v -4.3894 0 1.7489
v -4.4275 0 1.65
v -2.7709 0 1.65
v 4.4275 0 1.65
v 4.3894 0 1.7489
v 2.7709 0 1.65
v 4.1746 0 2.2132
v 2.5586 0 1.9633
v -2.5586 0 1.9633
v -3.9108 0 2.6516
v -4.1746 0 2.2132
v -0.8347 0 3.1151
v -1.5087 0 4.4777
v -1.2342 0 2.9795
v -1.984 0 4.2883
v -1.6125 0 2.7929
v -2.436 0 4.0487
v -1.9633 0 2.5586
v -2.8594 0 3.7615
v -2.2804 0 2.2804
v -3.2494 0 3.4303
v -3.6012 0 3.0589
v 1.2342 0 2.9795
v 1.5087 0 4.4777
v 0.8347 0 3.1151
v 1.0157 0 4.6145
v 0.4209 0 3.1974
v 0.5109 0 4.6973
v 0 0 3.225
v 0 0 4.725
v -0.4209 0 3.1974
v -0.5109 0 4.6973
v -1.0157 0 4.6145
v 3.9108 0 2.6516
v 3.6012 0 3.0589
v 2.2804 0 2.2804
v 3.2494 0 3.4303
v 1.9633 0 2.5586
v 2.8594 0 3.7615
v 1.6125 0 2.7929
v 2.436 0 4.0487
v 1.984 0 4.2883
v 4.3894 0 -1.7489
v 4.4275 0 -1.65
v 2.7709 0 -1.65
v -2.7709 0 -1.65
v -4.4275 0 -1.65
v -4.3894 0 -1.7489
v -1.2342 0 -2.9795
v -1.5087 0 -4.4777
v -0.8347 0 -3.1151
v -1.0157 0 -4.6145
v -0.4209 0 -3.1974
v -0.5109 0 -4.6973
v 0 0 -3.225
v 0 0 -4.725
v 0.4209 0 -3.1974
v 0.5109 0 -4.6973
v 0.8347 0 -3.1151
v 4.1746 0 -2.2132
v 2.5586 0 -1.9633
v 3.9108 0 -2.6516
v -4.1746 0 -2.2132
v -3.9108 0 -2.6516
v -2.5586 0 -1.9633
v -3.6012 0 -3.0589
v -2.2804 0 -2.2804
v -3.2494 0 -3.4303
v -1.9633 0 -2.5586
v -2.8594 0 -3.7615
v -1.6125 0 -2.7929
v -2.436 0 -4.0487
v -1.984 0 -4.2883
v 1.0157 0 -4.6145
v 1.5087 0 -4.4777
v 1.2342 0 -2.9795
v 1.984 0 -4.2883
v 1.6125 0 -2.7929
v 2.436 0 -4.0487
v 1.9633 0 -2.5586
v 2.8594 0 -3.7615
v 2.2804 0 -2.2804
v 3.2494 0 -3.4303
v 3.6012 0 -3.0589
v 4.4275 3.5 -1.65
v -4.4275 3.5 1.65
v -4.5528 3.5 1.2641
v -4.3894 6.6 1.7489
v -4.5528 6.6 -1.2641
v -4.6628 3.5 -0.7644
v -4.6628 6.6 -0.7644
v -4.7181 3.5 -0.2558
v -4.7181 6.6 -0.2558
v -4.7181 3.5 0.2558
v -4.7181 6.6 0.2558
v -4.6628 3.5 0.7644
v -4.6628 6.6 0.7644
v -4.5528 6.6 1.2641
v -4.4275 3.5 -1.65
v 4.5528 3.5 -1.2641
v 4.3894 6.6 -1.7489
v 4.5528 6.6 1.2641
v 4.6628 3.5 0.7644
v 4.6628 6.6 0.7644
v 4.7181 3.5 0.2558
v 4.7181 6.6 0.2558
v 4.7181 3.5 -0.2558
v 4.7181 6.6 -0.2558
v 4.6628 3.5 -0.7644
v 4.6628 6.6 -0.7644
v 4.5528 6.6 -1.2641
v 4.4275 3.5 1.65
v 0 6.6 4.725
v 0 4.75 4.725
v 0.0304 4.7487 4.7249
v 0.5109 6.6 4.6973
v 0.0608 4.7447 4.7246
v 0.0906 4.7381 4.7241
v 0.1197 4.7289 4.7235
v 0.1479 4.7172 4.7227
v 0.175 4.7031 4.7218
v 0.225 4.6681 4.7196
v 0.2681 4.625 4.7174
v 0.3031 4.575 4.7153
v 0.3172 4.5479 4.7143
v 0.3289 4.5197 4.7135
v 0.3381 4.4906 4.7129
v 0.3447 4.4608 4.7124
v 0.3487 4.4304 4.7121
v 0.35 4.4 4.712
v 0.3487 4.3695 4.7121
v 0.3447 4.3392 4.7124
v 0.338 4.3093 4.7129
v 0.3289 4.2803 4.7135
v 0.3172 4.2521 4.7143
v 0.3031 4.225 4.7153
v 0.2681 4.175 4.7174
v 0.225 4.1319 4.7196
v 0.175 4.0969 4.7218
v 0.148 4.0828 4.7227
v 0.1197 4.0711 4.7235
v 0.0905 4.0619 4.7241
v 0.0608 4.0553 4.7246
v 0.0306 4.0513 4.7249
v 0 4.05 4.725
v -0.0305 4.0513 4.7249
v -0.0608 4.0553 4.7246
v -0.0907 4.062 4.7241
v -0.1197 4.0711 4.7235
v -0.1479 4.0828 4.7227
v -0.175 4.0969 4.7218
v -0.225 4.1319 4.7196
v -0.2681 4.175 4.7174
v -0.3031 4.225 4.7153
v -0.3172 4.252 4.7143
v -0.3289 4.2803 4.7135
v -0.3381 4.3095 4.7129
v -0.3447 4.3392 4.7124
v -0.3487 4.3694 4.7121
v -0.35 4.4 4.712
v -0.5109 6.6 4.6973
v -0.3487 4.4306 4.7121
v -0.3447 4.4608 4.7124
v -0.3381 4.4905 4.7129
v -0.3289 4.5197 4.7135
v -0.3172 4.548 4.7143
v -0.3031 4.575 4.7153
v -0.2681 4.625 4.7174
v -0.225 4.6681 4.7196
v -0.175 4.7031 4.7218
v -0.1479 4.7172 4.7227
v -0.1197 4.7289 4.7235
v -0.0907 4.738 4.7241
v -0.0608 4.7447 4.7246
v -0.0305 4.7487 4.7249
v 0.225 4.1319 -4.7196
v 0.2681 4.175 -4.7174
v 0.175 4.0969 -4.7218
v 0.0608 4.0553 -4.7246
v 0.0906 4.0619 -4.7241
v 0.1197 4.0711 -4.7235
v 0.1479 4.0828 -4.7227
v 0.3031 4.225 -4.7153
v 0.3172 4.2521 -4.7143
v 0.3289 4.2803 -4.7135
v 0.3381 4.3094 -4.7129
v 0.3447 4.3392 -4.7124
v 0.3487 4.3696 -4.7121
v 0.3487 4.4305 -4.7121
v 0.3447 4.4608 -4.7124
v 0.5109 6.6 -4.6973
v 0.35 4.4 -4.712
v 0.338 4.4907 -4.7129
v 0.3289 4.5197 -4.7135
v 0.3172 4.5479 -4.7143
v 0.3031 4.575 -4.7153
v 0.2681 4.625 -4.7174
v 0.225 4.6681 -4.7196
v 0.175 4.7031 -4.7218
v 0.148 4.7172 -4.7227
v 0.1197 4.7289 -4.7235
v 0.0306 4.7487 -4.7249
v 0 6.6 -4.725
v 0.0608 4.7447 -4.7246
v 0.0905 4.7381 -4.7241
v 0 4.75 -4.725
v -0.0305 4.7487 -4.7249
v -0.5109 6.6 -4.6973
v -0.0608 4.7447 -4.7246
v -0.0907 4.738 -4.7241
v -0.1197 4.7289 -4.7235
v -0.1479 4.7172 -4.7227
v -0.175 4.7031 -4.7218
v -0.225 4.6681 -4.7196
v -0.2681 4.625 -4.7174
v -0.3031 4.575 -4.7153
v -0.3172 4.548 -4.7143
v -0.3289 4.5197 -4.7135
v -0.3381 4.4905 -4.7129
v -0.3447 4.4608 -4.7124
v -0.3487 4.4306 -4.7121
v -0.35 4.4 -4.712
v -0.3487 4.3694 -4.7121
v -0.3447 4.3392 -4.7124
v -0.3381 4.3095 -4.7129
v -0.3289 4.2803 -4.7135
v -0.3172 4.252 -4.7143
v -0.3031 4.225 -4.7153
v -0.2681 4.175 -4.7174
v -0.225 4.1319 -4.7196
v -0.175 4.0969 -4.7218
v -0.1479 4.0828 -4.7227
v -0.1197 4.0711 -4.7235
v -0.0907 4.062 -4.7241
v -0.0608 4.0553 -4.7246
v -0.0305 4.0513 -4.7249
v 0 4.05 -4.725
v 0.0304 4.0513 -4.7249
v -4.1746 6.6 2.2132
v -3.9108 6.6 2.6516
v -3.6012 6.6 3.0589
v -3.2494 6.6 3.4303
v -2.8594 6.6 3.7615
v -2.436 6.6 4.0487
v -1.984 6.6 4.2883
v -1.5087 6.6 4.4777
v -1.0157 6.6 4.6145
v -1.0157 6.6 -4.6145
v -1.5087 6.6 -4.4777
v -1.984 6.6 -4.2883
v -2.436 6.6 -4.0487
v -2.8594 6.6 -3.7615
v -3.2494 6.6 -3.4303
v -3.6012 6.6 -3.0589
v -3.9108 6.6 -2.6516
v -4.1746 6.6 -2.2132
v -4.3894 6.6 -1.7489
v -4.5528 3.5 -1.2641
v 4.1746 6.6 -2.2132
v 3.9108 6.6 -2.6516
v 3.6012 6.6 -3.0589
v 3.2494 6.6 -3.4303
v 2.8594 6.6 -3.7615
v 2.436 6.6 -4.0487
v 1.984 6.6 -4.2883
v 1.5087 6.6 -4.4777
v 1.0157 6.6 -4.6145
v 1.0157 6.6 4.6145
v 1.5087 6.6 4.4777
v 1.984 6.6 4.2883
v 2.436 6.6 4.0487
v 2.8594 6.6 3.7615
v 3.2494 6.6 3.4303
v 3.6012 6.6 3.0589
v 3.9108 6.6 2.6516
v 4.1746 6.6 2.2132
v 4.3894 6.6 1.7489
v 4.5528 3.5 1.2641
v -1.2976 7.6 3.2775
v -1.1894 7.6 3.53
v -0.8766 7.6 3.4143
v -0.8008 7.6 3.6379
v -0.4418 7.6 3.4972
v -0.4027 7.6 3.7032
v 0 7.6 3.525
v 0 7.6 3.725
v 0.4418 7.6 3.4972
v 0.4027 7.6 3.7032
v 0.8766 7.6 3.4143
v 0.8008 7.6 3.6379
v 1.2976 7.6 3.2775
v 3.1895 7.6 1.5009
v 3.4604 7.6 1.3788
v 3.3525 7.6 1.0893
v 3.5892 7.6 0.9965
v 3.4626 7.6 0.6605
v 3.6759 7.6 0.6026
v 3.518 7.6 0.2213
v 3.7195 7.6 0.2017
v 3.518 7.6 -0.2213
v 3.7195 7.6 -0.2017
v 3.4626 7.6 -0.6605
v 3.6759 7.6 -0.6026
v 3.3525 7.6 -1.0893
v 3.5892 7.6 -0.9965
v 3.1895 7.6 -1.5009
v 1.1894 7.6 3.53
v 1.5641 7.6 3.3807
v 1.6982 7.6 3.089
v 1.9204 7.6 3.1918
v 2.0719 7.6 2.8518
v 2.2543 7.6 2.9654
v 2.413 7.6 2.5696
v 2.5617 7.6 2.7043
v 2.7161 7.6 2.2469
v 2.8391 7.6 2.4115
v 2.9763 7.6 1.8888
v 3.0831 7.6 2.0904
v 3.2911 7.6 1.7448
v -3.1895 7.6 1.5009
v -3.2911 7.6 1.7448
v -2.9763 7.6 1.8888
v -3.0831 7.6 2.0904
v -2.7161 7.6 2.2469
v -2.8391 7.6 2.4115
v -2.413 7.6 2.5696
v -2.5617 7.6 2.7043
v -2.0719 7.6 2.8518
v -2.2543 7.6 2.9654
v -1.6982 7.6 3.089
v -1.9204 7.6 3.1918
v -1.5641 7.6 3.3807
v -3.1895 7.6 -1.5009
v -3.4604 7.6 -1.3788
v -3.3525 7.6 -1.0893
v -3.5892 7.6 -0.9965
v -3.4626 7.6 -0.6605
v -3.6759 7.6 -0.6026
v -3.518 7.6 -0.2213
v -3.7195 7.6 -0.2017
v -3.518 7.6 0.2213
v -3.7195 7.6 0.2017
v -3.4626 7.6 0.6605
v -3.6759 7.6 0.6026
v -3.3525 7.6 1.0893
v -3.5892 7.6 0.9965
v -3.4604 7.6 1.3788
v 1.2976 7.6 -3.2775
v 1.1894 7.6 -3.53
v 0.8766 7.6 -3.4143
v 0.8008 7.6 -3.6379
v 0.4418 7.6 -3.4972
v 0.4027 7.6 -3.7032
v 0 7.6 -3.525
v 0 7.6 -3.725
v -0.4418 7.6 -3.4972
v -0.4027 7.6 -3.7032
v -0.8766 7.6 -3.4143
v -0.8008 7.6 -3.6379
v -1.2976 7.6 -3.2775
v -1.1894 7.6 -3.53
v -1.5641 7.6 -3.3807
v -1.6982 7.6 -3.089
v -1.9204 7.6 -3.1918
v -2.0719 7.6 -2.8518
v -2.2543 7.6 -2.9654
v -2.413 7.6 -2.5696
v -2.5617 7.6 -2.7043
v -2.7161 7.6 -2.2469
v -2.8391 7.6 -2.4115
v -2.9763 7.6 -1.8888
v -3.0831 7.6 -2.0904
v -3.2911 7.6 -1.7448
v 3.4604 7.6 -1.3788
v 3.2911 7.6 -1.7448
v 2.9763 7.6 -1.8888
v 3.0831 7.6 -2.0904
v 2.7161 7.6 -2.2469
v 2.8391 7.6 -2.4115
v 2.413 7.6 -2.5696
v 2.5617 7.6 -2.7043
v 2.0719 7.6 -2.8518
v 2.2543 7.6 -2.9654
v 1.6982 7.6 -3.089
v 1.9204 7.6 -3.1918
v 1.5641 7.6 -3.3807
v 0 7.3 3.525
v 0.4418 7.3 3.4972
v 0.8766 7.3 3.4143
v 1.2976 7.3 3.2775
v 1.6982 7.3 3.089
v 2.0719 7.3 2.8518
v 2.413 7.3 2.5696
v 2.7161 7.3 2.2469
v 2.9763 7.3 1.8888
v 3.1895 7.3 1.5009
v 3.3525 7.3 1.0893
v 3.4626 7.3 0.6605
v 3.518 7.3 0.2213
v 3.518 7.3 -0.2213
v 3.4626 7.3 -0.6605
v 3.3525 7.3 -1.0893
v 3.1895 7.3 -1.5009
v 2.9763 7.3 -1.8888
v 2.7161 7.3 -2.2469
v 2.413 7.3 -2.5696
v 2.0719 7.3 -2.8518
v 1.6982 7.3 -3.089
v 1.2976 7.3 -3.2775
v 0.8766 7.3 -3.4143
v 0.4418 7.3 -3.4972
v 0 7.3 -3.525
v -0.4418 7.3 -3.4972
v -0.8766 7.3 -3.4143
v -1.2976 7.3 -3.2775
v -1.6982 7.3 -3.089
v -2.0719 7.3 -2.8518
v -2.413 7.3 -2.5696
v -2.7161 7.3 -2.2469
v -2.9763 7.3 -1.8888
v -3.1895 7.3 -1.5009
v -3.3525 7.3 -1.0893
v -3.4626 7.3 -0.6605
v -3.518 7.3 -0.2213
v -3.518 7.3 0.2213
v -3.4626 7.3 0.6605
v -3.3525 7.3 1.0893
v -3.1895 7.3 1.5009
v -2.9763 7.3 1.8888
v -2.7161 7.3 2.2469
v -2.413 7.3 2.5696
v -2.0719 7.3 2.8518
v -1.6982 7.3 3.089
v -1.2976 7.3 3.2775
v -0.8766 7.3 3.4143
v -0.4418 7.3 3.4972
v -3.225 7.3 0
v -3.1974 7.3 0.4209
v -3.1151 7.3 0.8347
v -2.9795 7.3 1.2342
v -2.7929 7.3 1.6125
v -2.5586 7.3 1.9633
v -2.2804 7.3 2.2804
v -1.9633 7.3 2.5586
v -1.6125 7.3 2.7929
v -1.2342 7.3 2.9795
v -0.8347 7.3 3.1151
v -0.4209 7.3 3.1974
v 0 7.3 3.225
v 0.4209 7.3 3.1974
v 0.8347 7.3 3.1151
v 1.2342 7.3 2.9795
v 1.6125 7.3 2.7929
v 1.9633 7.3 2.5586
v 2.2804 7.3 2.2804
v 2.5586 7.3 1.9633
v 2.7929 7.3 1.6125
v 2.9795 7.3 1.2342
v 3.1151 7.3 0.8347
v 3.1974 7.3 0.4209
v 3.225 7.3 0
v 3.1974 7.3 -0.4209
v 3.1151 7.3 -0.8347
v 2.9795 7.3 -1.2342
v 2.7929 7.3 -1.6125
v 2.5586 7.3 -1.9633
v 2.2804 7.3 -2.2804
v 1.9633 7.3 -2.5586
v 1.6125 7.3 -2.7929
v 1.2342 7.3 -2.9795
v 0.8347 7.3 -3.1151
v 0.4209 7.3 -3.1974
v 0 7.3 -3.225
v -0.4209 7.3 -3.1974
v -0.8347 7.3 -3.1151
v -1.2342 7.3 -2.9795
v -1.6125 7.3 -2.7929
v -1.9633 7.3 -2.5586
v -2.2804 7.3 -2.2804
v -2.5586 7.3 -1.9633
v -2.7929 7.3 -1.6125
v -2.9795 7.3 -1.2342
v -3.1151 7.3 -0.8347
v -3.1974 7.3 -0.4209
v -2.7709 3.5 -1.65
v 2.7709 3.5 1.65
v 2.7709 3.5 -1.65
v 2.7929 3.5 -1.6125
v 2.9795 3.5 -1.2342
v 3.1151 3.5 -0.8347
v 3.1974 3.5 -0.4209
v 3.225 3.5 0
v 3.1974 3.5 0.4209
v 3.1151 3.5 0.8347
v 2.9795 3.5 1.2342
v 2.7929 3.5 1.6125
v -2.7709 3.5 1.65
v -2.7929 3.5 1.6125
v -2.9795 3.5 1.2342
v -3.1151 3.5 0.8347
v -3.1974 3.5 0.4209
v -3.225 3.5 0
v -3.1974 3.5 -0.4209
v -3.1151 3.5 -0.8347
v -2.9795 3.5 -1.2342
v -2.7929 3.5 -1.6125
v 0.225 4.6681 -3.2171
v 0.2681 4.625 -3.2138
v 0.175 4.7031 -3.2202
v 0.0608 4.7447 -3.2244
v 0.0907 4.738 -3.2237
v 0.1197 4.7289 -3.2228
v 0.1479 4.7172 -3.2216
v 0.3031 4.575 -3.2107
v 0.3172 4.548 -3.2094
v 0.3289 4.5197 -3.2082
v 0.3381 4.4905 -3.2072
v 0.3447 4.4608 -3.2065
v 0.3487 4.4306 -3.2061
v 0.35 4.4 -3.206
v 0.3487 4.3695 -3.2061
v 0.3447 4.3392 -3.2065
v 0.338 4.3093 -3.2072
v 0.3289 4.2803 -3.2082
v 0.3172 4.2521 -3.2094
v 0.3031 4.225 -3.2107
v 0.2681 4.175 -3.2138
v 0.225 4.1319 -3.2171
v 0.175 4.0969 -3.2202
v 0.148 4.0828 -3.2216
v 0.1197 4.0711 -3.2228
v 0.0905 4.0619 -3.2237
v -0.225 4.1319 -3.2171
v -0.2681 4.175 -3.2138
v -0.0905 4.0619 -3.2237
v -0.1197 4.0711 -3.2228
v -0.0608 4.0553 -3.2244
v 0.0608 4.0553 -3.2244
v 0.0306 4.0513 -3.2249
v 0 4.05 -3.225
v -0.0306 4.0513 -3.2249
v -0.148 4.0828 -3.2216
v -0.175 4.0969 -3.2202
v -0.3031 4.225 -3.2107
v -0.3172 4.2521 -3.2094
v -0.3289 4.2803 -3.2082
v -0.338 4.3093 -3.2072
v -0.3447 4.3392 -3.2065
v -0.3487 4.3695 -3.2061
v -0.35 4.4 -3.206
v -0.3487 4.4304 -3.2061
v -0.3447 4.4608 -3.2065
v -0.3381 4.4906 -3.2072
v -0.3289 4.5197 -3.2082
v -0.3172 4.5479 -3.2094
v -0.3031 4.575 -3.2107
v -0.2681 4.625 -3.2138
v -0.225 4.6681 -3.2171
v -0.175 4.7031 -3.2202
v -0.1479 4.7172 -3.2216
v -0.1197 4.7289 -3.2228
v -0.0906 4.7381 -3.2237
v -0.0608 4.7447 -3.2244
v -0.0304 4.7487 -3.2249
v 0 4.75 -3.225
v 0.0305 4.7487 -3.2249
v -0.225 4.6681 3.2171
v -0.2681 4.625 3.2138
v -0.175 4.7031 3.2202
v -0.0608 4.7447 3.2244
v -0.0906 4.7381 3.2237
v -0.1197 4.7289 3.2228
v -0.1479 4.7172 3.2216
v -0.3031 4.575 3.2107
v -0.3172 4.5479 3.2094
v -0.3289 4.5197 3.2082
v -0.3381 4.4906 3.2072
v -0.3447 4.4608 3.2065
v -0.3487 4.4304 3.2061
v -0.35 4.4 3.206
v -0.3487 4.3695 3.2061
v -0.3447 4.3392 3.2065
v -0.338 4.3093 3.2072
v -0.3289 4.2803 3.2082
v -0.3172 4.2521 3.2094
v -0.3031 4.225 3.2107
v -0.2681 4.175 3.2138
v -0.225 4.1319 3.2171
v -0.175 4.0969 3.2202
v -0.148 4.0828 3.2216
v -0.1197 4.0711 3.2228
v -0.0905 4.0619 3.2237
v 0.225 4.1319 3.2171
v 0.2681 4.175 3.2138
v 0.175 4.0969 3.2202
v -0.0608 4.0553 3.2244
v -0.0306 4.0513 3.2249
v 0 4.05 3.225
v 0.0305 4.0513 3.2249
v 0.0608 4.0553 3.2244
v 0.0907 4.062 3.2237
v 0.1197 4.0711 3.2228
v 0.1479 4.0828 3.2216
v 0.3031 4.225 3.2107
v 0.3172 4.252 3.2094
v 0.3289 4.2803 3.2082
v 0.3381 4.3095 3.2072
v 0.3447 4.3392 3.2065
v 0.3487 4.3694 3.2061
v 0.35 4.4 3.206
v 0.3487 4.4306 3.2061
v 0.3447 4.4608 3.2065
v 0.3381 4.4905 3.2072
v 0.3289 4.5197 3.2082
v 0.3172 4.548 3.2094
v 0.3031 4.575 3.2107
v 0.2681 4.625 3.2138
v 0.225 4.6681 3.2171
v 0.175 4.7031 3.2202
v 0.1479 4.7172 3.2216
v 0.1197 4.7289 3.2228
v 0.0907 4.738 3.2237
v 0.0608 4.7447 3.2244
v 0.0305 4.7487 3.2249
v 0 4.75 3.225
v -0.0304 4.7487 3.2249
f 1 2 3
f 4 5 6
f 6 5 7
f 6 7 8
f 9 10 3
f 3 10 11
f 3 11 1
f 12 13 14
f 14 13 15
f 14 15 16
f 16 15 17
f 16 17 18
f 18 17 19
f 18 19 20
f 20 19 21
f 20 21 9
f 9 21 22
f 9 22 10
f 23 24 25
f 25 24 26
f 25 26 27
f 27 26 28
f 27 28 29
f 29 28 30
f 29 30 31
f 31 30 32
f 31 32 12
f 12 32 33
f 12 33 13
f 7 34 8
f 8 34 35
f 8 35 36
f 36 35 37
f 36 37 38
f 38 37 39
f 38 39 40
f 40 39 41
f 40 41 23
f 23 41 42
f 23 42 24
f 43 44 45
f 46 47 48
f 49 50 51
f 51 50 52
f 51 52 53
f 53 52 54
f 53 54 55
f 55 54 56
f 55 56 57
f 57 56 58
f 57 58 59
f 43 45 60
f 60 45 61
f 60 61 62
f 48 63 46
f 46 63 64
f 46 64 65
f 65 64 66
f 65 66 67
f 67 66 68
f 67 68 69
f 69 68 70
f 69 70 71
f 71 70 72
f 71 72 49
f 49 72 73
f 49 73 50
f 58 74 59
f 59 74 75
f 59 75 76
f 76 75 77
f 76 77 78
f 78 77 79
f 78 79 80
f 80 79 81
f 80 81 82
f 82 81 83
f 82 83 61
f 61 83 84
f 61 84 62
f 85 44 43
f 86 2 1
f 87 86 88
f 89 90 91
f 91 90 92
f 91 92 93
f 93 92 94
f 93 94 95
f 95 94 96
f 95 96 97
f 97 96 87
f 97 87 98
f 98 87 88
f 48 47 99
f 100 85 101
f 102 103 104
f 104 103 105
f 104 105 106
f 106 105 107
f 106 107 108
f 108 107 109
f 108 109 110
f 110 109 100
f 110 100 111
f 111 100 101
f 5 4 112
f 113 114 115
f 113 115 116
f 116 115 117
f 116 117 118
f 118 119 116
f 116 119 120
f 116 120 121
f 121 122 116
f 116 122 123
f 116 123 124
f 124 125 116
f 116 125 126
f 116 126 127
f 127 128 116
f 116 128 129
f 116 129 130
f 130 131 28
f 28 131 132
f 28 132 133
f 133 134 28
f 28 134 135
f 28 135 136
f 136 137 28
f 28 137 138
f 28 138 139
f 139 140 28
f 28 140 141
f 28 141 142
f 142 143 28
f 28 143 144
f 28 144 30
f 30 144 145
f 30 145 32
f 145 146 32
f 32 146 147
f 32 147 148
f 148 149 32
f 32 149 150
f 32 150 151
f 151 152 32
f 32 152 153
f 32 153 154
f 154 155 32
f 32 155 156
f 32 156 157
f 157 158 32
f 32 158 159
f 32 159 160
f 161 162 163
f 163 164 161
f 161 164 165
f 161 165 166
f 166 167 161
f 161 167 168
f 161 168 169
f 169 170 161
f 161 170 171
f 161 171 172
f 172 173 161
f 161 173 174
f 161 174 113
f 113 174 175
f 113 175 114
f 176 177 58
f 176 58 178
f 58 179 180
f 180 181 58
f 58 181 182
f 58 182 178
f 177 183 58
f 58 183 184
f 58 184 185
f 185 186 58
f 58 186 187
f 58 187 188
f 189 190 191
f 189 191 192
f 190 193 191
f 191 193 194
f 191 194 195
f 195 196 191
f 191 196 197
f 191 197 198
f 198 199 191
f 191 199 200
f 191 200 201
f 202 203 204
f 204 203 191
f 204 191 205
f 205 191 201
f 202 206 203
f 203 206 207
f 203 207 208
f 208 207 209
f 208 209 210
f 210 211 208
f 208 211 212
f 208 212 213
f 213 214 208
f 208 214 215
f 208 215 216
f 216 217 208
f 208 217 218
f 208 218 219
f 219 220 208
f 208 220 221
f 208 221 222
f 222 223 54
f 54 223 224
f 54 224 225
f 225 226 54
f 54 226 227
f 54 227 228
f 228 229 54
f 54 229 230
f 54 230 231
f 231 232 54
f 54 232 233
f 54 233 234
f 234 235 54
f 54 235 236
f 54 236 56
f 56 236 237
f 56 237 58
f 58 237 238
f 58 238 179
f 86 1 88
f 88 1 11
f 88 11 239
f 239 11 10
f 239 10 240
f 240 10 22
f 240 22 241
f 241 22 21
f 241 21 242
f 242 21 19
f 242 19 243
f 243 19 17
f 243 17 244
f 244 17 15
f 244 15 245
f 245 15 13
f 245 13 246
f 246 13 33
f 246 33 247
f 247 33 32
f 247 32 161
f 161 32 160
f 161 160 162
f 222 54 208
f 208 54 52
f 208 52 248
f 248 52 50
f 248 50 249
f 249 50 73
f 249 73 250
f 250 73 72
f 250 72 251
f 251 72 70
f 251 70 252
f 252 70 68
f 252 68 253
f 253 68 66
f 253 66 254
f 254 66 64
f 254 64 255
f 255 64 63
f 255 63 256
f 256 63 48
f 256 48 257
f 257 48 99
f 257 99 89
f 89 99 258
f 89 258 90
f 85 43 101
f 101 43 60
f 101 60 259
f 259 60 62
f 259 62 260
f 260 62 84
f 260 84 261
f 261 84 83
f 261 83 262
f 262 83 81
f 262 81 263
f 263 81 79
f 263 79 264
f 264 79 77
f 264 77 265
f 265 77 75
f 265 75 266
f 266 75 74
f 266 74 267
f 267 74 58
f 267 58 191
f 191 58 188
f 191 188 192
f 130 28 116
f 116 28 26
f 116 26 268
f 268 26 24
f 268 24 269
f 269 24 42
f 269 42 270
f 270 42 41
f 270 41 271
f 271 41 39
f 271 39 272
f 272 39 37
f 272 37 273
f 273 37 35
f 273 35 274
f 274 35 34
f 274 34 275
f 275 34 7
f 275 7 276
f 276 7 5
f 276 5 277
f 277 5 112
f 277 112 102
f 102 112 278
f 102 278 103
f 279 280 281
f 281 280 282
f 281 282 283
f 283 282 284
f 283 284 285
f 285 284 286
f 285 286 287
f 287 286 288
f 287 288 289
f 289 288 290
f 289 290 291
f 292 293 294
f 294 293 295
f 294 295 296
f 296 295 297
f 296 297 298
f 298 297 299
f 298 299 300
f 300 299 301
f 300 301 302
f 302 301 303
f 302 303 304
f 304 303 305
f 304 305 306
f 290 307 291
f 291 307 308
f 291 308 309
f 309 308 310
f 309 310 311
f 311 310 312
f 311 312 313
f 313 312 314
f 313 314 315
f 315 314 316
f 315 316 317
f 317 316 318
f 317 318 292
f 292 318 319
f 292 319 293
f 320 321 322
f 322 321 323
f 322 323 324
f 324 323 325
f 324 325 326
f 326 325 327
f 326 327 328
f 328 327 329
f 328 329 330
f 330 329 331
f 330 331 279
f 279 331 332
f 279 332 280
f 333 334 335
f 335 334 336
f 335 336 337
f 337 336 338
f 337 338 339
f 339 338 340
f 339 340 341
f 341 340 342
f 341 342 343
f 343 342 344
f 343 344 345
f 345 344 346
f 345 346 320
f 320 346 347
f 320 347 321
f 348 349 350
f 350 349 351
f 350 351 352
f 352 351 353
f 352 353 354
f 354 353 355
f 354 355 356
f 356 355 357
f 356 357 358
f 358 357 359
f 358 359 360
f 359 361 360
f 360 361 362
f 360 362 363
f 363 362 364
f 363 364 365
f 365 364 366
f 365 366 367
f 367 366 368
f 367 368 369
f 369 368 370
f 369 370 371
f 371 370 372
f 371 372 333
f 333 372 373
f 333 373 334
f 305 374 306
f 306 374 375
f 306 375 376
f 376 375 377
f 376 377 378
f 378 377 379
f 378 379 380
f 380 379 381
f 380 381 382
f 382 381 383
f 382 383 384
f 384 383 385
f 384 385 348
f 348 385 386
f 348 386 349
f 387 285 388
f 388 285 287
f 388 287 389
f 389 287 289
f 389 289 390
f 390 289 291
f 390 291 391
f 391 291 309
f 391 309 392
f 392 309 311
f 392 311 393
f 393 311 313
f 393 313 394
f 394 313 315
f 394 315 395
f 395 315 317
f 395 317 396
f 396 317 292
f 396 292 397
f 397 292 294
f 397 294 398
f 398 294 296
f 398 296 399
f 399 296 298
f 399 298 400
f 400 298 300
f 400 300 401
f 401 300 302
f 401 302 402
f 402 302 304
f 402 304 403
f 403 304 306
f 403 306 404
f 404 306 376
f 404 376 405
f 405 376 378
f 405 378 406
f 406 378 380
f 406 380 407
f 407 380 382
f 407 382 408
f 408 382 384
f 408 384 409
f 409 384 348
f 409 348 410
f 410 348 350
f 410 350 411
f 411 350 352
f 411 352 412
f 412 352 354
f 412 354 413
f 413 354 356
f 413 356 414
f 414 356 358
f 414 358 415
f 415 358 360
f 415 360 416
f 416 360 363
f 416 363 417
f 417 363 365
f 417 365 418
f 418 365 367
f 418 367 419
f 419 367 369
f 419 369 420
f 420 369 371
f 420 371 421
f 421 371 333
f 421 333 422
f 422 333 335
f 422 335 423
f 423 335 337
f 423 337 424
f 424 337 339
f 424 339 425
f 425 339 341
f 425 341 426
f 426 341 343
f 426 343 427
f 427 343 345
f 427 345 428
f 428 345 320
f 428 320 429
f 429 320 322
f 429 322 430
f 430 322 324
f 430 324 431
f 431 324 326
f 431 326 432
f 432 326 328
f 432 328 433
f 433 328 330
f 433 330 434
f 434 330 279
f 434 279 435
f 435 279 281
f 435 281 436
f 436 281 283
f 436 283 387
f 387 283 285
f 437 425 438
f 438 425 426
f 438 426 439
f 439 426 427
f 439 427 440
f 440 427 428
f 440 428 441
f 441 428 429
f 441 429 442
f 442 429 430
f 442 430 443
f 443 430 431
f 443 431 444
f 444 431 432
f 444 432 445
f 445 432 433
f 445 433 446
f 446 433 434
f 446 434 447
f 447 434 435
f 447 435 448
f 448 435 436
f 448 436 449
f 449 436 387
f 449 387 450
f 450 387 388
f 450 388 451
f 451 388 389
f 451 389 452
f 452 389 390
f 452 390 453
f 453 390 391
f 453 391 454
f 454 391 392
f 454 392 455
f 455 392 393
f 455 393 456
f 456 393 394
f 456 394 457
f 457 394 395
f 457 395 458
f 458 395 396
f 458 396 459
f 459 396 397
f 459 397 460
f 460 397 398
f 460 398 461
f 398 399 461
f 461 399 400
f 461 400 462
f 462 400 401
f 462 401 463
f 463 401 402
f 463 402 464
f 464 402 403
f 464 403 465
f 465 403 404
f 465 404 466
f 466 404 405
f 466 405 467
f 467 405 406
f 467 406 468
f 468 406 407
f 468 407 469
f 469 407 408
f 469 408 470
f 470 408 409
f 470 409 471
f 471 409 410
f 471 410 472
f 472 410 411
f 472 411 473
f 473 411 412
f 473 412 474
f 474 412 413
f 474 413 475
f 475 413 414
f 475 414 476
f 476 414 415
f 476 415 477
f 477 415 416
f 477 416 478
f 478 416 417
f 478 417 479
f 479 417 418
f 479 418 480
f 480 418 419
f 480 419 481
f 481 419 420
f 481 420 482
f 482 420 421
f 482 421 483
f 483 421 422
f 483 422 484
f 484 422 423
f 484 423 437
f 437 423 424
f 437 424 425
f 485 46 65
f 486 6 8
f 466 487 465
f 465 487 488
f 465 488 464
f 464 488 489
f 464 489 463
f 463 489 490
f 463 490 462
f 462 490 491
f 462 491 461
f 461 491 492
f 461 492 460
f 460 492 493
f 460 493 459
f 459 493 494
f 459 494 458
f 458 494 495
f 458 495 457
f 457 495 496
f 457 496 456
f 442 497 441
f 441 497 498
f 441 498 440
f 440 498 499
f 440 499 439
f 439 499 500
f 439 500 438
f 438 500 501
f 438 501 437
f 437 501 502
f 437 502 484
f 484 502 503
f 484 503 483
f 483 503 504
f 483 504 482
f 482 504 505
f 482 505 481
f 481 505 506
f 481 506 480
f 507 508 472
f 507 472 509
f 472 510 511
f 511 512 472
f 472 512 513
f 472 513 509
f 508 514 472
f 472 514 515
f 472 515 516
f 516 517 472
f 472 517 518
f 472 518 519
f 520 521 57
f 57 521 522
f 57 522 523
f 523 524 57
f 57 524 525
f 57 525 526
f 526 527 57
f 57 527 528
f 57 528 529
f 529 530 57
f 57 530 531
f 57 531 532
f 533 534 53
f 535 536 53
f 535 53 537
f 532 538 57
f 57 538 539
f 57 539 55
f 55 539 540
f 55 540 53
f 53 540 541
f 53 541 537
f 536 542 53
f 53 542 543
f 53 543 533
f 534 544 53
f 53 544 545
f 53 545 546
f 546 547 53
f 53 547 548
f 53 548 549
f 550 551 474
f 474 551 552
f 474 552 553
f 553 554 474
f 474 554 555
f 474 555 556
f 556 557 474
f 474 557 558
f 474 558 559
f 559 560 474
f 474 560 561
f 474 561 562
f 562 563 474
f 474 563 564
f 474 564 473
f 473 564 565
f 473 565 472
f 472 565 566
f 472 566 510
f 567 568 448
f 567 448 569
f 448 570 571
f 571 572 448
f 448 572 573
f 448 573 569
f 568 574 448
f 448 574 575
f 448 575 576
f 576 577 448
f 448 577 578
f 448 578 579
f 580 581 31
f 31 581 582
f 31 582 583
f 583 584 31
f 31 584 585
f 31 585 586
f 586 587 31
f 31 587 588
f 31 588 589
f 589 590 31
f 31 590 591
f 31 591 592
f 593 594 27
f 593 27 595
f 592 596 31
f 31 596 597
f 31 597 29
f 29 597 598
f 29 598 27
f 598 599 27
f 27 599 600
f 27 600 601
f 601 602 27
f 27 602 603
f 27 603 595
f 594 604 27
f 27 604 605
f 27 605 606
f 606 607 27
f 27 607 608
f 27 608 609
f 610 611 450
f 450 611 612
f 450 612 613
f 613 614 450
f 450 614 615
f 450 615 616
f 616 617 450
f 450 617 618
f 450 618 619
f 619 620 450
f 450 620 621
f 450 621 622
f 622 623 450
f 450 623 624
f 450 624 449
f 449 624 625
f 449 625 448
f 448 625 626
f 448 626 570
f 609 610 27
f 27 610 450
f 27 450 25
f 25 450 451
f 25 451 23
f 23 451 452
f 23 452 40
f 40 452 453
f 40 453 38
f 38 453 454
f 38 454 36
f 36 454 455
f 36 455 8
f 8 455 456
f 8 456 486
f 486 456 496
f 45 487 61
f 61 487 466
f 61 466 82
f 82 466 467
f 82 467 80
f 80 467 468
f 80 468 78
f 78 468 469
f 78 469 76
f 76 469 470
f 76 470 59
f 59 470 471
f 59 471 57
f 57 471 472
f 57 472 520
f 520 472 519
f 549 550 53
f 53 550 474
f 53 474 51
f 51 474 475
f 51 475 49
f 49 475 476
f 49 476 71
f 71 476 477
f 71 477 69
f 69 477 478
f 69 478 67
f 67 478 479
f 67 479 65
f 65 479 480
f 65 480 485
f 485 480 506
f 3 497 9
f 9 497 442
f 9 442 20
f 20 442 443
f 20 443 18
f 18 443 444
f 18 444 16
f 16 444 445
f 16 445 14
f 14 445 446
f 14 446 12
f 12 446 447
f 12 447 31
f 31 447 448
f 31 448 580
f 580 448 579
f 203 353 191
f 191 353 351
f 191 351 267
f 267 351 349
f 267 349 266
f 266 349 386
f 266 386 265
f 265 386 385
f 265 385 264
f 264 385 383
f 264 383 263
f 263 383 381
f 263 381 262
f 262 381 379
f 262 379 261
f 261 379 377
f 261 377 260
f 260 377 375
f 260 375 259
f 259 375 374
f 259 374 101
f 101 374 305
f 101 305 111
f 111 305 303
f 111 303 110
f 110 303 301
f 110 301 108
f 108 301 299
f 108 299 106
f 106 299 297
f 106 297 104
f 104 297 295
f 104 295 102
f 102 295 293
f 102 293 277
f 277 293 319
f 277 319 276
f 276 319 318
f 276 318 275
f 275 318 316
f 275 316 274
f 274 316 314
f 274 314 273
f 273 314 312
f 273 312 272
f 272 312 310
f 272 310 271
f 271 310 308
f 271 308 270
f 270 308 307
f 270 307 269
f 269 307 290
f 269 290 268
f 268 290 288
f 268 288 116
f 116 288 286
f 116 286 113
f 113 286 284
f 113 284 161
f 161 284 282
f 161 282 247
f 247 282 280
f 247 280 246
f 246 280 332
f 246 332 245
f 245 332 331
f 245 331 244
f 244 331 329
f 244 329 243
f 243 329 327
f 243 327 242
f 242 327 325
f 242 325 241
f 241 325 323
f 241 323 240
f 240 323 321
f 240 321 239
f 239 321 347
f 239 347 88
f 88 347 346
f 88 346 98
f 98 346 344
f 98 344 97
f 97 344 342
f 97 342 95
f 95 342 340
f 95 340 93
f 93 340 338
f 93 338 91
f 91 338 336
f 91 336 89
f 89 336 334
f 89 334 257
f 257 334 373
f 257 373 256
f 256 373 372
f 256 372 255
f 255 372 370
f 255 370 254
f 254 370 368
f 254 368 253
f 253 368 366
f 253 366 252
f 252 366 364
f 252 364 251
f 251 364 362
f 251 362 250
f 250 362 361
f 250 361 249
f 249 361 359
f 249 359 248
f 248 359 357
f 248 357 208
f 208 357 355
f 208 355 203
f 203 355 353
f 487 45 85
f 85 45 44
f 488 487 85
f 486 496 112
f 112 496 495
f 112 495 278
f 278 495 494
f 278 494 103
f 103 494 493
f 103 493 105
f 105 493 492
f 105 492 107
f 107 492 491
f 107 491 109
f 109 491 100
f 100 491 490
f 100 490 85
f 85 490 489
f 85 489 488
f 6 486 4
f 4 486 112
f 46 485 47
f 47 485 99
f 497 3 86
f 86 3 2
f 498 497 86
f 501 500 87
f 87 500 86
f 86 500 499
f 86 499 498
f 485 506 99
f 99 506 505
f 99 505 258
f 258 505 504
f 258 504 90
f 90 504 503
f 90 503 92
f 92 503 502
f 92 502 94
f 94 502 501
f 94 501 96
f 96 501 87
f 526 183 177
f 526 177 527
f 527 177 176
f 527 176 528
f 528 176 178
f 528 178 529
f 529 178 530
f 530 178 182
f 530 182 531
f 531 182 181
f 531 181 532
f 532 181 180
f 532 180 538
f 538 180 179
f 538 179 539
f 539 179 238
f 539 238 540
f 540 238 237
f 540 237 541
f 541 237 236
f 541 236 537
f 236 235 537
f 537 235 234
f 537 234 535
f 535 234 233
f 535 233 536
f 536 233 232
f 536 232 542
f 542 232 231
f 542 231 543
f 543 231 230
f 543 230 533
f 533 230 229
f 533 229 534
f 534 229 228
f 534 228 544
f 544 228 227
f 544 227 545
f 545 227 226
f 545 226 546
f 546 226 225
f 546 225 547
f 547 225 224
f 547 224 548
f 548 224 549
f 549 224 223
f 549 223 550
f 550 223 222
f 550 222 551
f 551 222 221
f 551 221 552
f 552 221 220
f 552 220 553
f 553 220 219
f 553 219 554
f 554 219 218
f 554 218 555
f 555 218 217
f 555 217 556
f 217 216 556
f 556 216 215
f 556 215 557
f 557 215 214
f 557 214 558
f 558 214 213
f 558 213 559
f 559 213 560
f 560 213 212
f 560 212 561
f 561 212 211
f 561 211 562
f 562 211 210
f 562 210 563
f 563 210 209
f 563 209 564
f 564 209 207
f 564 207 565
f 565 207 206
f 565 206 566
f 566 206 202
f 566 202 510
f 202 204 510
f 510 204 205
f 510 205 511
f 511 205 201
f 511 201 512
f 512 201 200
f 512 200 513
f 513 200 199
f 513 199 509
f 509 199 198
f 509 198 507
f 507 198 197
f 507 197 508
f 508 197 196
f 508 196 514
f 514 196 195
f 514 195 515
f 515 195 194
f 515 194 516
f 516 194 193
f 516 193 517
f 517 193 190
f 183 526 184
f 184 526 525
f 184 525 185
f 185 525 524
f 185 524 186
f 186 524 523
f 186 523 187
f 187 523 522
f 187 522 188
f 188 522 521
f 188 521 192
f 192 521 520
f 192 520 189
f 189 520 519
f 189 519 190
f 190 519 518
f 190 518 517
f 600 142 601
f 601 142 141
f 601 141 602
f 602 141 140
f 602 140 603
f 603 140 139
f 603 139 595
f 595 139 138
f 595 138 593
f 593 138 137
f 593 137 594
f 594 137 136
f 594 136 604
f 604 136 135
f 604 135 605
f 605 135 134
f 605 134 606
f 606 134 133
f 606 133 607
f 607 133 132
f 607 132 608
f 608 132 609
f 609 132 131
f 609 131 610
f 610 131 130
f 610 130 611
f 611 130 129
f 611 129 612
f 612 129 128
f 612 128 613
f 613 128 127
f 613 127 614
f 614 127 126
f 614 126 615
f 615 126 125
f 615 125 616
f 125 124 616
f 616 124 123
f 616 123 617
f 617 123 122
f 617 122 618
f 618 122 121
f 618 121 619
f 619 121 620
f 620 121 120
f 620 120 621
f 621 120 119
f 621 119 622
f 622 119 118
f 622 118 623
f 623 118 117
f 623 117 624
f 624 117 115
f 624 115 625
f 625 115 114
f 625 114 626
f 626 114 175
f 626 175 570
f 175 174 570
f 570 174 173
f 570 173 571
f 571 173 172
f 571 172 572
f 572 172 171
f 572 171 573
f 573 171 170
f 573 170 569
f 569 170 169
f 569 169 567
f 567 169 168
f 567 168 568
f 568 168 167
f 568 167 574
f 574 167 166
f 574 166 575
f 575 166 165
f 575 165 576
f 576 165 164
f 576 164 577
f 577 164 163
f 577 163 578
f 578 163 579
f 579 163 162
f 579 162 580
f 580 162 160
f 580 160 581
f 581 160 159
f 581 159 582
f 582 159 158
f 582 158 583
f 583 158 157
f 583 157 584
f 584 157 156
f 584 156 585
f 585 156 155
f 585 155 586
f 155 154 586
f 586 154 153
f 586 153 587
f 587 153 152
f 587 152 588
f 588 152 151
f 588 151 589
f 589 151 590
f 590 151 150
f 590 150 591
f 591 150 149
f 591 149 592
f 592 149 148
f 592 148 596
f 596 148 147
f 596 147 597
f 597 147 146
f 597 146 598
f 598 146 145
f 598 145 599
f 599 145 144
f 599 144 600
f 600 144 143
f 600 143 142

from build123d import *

# Parameters (mm, degrees)
CHAMFER1_SIZE           = 1
SKETCH2_W               = 3.3
SKETCH2_H               = 3.5
CUT_EXTRUDE1_DEPTH      = 5.725
CUT_EXTRUDE1_DEPTH_BACK = 5.725
SKETCH3_R               = 0.35
CUT_EXTRUDE2_DEPTH      = 5.725
CUT_EXTRUDE2_DEPTH_BACK = 5.725


with BuildPart() as part:
    # Sketch1 → Revolve1 (revolve)
    with BuildSketch(Plane.XY):
        Polygon((-4.725, 0), (-4.725, 7.6), (-3.525, 7.6), (-3.525, 7.3), (-3.225, 7.3), (-3.225, 0), align=None)
    revolve(axis=Axis((0, 7.611752988, 0), (0, -1, 0)))

    # Chamfer1
    chamfer1_edges = [part.edges().sort_by_distance(p)[0] for p in [
        (4.725, 7.6, 0),
    ]]
    chamfer(chamfer1_edges, length=CHAMFER1_SIZE)

    # Sketch2 → Cut-Extrude1 (cut, two sides)
    with BuildSketch(Plane(origin=(0, 0, 0), x_dir=(0, 0, -1), z_dir=(1, 0, 0))) as cut_extrude1_sk:
        with Locations((0, 1.75)):
            Rectangle(SKETCH2_W, SKETCH2_H)
    extrude(amount=CUT_EXTRUDE1_DEPTH, mode=Mode.SUBTRACT)
    extrude(cut_extrude1_sk.sketch, amount=-CUT_EXTRUDE1_DEPTH_BACK, mode=Mode.SUBTRACT)

    # Sketch3 → Cut-Extrude2 (cut, two sides)
    with BuildSketch(Plane.XY) as cut_extrude2_sk:
        with Locations((0, 4.4)):
            Circle(SKETCH3_R)
    extrude(amount=CUT_EXTRUDE2_DEPTH, mode=Mode.SUBTRACT)
    extrude(cut_extrude2_sk.sketch, amount=-CUT_EXTRUDE2_DEPTH_BACK, mode=Mode.SUBTRACT)


solid = part.part
